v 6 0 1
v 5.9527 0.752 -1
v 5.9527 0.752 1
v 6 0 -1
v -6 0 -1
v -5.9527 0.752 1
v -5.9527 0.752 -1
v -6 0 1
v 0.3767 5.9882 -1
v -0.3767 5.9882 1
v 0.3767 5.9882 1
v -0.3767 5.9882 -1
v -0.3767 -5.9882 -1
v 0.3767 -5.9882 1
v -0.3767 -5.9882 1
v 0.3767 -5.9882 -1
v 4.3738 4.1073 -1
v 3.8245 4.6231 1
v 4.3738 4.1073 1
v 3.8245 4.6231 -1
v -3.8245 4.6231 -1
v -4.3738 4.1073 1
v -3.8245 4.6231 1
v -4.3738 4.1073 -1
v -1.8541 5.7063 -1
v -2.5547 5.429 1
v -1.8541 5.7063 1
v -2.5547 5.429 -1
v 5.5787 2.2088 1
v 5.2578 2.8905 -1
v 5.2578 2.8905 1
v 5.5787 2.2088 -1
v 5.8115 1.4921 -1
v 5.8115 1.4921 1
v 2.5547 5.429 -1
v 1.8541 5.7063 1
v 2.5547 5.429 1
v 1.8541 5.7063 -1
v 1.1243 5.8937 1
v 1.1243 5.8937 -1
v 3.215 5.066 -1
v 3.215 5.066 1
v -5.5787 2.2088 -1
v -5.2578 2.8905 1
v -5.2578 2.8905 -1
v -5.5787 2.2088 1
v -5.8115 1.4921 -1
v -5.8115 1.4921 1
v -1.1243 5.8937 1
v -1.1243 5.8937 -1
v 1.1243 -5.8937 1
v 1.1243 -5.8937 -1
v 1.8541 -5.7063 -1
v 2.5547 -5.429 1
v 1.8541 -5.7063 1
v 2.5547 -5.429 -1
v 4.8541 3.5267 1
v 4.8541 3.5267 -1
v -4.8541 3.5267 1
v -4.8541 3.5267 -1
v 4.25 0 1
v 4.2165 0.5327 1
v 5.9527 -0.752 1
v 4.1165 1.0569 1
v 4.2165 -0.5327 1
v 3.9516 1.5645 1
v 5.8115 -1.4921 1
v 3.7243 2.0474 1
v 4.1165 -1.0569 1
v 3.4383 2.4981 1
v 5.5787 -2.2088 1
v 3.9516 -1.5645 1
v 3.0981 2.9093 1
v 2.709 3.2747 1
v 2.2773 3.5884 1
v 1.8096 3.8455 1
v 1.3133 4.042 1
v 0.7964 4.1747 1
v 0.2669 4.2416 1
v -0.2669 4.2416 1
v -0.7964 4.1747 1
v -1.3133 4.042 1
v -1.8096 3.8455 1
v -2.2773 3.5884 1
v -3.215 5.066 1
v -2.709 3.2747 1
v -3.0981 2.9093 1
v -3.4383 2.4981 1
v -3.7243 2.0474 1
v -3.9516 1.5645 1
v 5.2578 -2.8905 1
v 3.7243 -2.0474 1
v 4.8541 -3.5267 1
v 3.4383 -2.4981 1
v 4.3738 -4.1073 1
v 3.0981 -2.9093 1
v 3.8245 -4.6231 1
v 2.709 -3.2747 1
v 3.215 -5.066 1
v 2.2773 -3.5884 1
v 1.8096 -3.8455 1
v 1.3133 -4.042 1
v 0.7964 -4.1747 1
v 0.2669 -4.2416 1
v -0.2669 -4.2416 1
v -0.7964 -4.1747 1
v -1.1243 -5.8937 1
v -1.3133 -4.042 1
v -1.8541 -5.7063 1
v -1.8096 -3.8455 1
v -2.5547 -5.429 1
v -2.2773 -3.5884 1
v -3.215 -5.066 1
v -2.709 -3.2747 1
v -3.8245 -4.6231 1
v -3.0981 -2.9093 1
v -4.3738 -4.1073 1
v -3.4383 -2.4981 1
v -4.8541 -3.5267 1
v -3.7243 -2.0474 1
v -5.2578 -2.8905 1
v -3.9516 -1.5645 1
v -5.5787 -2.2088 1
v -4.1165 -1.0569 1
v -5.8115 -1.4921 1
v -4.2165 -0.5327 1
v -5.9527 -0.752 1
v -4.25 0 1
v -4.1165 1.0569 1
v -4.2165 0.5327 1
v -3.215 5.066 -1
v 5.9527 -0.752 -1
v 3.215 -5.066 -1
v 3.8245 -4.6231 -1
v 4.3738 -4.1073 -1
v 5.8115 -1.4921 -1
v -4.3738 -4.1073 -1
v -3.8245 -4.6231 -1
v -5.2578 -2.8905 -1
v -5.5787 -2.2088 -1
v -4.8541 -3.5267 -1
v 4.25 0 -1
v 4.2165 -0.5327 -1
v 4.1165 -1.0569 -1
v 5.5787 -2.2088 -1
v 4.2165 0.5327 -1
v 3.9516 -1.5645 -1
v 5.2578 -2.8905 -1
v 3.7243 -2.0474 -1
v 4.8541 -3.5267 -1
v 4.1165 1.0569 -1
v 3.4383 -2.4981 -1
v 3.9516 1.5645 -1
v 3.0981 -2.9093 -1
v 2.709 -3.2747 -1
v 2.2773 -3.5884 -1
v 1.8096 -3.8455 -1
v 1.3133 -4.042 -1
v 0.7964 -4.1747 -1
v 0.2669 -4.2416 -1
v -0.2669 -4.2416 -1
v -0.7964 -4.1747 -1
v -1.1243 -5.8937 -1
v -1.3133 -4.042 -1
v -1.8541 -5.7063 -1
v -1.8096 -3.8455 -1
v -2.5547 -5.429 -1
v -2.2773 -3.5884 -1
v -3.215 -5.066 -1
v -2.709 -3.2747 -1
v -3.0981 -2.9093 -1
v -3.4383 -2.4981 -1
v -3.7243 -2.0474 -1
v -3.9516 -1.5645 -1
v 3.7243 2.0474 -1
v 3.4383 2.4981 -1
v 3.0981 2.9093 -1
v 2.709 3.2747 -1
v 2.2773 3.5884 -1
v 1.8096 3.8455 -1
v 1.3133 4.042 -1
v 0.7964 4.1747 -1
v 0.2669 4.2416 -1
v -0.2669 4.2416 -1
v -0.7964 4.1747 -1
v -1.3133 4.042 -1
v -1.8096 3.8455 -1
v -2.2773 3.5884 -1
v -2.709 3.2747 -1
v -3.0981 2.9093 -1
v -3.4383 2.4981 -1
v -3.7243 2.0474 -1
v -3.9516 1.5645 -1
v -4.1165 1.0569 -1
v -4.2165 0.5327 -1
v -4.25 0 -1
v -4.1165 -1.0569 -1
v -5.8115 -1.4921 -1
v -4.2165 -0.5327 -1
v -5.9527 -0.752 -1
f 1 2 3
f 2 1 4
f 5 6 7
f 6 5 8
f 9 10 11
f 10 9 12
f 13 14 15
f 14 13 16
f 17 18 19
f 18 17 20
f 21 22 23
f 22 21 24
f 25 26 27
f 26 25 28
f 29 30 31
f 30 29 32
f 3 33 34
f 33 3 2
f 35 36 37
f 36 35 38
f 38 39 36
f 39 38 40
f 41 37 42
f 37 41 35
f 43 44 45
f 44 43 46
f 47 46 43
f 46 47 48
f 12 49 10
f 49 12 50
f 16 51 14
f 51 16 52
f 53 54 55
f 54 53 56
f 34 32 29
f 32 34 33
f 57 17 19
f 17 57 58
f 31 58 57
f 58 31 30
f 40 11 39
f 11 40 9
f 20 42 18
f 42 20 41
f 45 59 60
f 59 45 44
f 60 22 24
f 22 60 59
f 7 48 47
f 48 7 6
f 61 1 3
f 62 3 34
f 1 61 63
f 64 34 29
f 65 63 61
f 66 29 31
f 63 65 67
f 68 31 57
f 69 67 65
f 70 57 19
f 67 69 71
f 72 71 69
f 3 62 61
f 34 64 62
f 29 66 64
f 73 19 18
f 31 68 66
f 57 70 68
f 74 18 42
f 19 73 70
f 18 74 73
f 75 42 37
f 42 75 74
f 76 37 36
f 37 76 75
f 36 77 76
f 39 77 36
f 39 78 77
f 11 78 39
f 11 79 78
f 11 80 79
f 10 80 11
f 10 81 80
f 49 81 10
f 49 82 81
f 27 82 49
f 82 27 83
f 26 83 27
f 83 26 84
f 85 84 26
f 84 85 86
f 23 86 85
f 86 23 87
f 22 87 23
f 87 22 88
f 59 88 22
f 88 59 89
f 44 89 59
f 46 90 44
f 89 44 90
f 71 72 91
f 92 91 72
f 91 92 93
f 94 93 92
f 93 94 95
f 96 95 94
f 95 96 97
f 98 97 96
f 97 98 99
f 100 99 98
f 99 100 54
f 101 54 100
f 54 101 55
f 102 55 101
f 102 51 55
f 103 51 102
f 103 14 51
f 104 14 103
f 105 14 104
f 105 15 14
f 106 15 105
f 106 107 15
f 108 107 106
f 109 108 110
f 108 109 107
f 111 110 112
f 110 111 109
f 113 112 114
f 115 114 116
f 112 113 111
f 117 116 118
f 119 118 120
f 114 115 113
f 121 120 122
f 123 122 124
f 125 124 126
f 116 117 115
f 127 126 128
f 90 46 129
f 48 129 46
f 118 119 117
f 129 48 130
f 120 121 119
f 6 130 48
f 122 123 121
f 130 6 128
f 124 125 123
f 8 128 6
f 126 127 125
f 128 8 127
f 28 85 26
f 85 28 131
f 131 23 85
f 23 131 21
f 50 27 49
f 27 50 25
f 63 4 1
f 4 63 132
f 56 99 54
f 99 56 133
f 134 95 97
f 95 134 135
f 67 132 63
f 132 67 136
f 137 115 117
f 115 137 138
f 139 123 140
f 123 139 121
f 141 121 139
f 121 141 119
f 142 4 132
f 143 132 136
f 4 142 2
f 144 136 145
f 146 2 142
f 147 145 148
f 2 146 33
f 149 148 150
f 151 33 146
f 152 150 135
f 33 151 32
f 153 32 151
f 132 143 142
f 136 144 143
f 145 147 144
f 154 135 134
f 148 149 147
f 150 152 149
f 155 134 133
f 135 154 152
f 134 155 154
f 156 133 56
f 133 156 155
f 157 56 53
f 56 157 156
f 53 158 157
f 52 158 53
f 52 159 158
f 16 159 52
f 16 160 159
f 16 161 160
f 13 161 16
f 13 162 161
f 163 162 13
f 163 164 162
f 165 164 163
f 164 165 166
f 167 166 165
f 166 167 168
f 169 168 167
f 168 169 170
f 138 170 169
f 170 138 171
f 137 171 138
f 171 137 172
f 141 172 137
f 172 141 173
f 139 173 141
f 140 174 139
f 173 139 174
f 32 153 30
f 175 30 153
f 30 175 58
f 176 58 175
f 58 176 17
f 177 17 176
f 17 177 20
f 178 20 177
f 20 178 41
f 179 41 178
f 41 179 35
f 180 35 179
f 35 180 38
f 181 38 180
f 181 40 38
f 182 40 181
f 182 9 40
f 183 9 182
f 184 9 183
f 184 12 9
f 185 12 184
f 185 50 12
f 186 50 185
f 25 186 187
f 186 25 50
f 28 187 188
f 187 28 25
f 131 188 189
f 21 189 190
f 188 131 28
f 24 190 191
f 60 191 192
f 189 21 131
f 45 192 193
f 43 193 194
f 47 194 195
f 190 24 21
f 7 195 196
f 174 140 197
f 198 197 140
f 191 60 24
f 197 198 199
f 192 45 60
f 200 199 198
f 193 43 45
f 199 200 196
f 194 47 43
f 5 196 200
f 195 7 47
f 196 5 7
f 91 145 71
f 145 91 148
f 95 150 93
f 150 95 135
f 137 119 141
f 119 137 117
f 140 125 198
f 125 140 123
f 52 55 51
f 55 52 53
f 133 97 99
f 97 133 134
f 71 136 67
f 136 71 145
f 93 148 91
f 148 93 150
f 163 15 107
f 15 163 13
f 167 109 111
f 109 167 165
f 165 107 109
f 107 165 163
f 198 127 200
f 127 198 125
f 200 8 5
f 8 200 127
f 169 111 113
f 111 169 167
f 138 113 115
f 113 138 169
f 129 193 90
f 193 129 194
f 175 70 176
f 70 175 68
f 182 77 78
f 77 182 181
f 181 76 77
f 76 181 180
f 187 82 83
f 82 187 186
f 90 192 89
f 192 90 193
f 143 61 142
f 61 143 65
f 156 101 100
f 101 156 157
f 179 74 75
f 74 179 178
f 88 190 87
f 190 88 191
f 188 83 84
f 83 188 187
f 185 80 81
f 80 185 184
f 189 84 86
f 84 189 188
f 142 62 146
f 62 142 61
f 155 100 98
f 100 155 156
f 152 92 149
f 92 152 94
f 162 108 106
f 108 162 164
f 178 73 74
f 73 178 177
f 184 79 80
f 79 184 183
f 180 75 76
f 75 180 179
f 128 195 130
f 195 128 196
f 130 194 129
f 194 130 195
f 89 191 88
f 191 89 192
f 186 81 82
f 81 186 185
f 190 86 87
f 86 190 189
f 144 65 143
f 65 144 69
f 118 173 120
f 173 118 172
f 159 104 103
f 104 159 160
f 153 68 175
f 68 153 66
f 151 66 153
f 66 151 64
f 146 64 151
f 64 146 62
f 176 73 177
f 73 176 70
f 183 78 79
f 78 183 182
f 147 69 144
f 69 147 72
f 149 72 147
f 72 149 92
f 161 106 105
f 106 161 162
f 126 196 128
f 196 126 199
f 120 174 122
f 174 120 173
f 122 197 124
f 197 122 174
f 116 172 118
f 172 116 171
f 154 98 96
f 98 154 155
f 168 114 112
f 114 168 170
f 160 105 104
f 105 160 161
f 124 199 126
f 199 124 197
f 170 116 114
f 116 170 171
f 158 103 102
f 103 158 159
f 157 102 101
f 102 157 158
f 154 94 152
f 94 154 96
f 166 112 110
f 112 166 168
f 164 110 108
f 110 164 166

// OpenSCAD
$fn = 50;


difference() {
	union() {
		translate(v = [0, 0, -1.0000000000]) {
			cylinder(h = 2, r = 6.0000000000);
		}
	}
	union() {
		translate(v = [0, 0, -100.0000000000]) {
			cylinder(h = 200, r = 4.2500000000);
		}
	}
}
